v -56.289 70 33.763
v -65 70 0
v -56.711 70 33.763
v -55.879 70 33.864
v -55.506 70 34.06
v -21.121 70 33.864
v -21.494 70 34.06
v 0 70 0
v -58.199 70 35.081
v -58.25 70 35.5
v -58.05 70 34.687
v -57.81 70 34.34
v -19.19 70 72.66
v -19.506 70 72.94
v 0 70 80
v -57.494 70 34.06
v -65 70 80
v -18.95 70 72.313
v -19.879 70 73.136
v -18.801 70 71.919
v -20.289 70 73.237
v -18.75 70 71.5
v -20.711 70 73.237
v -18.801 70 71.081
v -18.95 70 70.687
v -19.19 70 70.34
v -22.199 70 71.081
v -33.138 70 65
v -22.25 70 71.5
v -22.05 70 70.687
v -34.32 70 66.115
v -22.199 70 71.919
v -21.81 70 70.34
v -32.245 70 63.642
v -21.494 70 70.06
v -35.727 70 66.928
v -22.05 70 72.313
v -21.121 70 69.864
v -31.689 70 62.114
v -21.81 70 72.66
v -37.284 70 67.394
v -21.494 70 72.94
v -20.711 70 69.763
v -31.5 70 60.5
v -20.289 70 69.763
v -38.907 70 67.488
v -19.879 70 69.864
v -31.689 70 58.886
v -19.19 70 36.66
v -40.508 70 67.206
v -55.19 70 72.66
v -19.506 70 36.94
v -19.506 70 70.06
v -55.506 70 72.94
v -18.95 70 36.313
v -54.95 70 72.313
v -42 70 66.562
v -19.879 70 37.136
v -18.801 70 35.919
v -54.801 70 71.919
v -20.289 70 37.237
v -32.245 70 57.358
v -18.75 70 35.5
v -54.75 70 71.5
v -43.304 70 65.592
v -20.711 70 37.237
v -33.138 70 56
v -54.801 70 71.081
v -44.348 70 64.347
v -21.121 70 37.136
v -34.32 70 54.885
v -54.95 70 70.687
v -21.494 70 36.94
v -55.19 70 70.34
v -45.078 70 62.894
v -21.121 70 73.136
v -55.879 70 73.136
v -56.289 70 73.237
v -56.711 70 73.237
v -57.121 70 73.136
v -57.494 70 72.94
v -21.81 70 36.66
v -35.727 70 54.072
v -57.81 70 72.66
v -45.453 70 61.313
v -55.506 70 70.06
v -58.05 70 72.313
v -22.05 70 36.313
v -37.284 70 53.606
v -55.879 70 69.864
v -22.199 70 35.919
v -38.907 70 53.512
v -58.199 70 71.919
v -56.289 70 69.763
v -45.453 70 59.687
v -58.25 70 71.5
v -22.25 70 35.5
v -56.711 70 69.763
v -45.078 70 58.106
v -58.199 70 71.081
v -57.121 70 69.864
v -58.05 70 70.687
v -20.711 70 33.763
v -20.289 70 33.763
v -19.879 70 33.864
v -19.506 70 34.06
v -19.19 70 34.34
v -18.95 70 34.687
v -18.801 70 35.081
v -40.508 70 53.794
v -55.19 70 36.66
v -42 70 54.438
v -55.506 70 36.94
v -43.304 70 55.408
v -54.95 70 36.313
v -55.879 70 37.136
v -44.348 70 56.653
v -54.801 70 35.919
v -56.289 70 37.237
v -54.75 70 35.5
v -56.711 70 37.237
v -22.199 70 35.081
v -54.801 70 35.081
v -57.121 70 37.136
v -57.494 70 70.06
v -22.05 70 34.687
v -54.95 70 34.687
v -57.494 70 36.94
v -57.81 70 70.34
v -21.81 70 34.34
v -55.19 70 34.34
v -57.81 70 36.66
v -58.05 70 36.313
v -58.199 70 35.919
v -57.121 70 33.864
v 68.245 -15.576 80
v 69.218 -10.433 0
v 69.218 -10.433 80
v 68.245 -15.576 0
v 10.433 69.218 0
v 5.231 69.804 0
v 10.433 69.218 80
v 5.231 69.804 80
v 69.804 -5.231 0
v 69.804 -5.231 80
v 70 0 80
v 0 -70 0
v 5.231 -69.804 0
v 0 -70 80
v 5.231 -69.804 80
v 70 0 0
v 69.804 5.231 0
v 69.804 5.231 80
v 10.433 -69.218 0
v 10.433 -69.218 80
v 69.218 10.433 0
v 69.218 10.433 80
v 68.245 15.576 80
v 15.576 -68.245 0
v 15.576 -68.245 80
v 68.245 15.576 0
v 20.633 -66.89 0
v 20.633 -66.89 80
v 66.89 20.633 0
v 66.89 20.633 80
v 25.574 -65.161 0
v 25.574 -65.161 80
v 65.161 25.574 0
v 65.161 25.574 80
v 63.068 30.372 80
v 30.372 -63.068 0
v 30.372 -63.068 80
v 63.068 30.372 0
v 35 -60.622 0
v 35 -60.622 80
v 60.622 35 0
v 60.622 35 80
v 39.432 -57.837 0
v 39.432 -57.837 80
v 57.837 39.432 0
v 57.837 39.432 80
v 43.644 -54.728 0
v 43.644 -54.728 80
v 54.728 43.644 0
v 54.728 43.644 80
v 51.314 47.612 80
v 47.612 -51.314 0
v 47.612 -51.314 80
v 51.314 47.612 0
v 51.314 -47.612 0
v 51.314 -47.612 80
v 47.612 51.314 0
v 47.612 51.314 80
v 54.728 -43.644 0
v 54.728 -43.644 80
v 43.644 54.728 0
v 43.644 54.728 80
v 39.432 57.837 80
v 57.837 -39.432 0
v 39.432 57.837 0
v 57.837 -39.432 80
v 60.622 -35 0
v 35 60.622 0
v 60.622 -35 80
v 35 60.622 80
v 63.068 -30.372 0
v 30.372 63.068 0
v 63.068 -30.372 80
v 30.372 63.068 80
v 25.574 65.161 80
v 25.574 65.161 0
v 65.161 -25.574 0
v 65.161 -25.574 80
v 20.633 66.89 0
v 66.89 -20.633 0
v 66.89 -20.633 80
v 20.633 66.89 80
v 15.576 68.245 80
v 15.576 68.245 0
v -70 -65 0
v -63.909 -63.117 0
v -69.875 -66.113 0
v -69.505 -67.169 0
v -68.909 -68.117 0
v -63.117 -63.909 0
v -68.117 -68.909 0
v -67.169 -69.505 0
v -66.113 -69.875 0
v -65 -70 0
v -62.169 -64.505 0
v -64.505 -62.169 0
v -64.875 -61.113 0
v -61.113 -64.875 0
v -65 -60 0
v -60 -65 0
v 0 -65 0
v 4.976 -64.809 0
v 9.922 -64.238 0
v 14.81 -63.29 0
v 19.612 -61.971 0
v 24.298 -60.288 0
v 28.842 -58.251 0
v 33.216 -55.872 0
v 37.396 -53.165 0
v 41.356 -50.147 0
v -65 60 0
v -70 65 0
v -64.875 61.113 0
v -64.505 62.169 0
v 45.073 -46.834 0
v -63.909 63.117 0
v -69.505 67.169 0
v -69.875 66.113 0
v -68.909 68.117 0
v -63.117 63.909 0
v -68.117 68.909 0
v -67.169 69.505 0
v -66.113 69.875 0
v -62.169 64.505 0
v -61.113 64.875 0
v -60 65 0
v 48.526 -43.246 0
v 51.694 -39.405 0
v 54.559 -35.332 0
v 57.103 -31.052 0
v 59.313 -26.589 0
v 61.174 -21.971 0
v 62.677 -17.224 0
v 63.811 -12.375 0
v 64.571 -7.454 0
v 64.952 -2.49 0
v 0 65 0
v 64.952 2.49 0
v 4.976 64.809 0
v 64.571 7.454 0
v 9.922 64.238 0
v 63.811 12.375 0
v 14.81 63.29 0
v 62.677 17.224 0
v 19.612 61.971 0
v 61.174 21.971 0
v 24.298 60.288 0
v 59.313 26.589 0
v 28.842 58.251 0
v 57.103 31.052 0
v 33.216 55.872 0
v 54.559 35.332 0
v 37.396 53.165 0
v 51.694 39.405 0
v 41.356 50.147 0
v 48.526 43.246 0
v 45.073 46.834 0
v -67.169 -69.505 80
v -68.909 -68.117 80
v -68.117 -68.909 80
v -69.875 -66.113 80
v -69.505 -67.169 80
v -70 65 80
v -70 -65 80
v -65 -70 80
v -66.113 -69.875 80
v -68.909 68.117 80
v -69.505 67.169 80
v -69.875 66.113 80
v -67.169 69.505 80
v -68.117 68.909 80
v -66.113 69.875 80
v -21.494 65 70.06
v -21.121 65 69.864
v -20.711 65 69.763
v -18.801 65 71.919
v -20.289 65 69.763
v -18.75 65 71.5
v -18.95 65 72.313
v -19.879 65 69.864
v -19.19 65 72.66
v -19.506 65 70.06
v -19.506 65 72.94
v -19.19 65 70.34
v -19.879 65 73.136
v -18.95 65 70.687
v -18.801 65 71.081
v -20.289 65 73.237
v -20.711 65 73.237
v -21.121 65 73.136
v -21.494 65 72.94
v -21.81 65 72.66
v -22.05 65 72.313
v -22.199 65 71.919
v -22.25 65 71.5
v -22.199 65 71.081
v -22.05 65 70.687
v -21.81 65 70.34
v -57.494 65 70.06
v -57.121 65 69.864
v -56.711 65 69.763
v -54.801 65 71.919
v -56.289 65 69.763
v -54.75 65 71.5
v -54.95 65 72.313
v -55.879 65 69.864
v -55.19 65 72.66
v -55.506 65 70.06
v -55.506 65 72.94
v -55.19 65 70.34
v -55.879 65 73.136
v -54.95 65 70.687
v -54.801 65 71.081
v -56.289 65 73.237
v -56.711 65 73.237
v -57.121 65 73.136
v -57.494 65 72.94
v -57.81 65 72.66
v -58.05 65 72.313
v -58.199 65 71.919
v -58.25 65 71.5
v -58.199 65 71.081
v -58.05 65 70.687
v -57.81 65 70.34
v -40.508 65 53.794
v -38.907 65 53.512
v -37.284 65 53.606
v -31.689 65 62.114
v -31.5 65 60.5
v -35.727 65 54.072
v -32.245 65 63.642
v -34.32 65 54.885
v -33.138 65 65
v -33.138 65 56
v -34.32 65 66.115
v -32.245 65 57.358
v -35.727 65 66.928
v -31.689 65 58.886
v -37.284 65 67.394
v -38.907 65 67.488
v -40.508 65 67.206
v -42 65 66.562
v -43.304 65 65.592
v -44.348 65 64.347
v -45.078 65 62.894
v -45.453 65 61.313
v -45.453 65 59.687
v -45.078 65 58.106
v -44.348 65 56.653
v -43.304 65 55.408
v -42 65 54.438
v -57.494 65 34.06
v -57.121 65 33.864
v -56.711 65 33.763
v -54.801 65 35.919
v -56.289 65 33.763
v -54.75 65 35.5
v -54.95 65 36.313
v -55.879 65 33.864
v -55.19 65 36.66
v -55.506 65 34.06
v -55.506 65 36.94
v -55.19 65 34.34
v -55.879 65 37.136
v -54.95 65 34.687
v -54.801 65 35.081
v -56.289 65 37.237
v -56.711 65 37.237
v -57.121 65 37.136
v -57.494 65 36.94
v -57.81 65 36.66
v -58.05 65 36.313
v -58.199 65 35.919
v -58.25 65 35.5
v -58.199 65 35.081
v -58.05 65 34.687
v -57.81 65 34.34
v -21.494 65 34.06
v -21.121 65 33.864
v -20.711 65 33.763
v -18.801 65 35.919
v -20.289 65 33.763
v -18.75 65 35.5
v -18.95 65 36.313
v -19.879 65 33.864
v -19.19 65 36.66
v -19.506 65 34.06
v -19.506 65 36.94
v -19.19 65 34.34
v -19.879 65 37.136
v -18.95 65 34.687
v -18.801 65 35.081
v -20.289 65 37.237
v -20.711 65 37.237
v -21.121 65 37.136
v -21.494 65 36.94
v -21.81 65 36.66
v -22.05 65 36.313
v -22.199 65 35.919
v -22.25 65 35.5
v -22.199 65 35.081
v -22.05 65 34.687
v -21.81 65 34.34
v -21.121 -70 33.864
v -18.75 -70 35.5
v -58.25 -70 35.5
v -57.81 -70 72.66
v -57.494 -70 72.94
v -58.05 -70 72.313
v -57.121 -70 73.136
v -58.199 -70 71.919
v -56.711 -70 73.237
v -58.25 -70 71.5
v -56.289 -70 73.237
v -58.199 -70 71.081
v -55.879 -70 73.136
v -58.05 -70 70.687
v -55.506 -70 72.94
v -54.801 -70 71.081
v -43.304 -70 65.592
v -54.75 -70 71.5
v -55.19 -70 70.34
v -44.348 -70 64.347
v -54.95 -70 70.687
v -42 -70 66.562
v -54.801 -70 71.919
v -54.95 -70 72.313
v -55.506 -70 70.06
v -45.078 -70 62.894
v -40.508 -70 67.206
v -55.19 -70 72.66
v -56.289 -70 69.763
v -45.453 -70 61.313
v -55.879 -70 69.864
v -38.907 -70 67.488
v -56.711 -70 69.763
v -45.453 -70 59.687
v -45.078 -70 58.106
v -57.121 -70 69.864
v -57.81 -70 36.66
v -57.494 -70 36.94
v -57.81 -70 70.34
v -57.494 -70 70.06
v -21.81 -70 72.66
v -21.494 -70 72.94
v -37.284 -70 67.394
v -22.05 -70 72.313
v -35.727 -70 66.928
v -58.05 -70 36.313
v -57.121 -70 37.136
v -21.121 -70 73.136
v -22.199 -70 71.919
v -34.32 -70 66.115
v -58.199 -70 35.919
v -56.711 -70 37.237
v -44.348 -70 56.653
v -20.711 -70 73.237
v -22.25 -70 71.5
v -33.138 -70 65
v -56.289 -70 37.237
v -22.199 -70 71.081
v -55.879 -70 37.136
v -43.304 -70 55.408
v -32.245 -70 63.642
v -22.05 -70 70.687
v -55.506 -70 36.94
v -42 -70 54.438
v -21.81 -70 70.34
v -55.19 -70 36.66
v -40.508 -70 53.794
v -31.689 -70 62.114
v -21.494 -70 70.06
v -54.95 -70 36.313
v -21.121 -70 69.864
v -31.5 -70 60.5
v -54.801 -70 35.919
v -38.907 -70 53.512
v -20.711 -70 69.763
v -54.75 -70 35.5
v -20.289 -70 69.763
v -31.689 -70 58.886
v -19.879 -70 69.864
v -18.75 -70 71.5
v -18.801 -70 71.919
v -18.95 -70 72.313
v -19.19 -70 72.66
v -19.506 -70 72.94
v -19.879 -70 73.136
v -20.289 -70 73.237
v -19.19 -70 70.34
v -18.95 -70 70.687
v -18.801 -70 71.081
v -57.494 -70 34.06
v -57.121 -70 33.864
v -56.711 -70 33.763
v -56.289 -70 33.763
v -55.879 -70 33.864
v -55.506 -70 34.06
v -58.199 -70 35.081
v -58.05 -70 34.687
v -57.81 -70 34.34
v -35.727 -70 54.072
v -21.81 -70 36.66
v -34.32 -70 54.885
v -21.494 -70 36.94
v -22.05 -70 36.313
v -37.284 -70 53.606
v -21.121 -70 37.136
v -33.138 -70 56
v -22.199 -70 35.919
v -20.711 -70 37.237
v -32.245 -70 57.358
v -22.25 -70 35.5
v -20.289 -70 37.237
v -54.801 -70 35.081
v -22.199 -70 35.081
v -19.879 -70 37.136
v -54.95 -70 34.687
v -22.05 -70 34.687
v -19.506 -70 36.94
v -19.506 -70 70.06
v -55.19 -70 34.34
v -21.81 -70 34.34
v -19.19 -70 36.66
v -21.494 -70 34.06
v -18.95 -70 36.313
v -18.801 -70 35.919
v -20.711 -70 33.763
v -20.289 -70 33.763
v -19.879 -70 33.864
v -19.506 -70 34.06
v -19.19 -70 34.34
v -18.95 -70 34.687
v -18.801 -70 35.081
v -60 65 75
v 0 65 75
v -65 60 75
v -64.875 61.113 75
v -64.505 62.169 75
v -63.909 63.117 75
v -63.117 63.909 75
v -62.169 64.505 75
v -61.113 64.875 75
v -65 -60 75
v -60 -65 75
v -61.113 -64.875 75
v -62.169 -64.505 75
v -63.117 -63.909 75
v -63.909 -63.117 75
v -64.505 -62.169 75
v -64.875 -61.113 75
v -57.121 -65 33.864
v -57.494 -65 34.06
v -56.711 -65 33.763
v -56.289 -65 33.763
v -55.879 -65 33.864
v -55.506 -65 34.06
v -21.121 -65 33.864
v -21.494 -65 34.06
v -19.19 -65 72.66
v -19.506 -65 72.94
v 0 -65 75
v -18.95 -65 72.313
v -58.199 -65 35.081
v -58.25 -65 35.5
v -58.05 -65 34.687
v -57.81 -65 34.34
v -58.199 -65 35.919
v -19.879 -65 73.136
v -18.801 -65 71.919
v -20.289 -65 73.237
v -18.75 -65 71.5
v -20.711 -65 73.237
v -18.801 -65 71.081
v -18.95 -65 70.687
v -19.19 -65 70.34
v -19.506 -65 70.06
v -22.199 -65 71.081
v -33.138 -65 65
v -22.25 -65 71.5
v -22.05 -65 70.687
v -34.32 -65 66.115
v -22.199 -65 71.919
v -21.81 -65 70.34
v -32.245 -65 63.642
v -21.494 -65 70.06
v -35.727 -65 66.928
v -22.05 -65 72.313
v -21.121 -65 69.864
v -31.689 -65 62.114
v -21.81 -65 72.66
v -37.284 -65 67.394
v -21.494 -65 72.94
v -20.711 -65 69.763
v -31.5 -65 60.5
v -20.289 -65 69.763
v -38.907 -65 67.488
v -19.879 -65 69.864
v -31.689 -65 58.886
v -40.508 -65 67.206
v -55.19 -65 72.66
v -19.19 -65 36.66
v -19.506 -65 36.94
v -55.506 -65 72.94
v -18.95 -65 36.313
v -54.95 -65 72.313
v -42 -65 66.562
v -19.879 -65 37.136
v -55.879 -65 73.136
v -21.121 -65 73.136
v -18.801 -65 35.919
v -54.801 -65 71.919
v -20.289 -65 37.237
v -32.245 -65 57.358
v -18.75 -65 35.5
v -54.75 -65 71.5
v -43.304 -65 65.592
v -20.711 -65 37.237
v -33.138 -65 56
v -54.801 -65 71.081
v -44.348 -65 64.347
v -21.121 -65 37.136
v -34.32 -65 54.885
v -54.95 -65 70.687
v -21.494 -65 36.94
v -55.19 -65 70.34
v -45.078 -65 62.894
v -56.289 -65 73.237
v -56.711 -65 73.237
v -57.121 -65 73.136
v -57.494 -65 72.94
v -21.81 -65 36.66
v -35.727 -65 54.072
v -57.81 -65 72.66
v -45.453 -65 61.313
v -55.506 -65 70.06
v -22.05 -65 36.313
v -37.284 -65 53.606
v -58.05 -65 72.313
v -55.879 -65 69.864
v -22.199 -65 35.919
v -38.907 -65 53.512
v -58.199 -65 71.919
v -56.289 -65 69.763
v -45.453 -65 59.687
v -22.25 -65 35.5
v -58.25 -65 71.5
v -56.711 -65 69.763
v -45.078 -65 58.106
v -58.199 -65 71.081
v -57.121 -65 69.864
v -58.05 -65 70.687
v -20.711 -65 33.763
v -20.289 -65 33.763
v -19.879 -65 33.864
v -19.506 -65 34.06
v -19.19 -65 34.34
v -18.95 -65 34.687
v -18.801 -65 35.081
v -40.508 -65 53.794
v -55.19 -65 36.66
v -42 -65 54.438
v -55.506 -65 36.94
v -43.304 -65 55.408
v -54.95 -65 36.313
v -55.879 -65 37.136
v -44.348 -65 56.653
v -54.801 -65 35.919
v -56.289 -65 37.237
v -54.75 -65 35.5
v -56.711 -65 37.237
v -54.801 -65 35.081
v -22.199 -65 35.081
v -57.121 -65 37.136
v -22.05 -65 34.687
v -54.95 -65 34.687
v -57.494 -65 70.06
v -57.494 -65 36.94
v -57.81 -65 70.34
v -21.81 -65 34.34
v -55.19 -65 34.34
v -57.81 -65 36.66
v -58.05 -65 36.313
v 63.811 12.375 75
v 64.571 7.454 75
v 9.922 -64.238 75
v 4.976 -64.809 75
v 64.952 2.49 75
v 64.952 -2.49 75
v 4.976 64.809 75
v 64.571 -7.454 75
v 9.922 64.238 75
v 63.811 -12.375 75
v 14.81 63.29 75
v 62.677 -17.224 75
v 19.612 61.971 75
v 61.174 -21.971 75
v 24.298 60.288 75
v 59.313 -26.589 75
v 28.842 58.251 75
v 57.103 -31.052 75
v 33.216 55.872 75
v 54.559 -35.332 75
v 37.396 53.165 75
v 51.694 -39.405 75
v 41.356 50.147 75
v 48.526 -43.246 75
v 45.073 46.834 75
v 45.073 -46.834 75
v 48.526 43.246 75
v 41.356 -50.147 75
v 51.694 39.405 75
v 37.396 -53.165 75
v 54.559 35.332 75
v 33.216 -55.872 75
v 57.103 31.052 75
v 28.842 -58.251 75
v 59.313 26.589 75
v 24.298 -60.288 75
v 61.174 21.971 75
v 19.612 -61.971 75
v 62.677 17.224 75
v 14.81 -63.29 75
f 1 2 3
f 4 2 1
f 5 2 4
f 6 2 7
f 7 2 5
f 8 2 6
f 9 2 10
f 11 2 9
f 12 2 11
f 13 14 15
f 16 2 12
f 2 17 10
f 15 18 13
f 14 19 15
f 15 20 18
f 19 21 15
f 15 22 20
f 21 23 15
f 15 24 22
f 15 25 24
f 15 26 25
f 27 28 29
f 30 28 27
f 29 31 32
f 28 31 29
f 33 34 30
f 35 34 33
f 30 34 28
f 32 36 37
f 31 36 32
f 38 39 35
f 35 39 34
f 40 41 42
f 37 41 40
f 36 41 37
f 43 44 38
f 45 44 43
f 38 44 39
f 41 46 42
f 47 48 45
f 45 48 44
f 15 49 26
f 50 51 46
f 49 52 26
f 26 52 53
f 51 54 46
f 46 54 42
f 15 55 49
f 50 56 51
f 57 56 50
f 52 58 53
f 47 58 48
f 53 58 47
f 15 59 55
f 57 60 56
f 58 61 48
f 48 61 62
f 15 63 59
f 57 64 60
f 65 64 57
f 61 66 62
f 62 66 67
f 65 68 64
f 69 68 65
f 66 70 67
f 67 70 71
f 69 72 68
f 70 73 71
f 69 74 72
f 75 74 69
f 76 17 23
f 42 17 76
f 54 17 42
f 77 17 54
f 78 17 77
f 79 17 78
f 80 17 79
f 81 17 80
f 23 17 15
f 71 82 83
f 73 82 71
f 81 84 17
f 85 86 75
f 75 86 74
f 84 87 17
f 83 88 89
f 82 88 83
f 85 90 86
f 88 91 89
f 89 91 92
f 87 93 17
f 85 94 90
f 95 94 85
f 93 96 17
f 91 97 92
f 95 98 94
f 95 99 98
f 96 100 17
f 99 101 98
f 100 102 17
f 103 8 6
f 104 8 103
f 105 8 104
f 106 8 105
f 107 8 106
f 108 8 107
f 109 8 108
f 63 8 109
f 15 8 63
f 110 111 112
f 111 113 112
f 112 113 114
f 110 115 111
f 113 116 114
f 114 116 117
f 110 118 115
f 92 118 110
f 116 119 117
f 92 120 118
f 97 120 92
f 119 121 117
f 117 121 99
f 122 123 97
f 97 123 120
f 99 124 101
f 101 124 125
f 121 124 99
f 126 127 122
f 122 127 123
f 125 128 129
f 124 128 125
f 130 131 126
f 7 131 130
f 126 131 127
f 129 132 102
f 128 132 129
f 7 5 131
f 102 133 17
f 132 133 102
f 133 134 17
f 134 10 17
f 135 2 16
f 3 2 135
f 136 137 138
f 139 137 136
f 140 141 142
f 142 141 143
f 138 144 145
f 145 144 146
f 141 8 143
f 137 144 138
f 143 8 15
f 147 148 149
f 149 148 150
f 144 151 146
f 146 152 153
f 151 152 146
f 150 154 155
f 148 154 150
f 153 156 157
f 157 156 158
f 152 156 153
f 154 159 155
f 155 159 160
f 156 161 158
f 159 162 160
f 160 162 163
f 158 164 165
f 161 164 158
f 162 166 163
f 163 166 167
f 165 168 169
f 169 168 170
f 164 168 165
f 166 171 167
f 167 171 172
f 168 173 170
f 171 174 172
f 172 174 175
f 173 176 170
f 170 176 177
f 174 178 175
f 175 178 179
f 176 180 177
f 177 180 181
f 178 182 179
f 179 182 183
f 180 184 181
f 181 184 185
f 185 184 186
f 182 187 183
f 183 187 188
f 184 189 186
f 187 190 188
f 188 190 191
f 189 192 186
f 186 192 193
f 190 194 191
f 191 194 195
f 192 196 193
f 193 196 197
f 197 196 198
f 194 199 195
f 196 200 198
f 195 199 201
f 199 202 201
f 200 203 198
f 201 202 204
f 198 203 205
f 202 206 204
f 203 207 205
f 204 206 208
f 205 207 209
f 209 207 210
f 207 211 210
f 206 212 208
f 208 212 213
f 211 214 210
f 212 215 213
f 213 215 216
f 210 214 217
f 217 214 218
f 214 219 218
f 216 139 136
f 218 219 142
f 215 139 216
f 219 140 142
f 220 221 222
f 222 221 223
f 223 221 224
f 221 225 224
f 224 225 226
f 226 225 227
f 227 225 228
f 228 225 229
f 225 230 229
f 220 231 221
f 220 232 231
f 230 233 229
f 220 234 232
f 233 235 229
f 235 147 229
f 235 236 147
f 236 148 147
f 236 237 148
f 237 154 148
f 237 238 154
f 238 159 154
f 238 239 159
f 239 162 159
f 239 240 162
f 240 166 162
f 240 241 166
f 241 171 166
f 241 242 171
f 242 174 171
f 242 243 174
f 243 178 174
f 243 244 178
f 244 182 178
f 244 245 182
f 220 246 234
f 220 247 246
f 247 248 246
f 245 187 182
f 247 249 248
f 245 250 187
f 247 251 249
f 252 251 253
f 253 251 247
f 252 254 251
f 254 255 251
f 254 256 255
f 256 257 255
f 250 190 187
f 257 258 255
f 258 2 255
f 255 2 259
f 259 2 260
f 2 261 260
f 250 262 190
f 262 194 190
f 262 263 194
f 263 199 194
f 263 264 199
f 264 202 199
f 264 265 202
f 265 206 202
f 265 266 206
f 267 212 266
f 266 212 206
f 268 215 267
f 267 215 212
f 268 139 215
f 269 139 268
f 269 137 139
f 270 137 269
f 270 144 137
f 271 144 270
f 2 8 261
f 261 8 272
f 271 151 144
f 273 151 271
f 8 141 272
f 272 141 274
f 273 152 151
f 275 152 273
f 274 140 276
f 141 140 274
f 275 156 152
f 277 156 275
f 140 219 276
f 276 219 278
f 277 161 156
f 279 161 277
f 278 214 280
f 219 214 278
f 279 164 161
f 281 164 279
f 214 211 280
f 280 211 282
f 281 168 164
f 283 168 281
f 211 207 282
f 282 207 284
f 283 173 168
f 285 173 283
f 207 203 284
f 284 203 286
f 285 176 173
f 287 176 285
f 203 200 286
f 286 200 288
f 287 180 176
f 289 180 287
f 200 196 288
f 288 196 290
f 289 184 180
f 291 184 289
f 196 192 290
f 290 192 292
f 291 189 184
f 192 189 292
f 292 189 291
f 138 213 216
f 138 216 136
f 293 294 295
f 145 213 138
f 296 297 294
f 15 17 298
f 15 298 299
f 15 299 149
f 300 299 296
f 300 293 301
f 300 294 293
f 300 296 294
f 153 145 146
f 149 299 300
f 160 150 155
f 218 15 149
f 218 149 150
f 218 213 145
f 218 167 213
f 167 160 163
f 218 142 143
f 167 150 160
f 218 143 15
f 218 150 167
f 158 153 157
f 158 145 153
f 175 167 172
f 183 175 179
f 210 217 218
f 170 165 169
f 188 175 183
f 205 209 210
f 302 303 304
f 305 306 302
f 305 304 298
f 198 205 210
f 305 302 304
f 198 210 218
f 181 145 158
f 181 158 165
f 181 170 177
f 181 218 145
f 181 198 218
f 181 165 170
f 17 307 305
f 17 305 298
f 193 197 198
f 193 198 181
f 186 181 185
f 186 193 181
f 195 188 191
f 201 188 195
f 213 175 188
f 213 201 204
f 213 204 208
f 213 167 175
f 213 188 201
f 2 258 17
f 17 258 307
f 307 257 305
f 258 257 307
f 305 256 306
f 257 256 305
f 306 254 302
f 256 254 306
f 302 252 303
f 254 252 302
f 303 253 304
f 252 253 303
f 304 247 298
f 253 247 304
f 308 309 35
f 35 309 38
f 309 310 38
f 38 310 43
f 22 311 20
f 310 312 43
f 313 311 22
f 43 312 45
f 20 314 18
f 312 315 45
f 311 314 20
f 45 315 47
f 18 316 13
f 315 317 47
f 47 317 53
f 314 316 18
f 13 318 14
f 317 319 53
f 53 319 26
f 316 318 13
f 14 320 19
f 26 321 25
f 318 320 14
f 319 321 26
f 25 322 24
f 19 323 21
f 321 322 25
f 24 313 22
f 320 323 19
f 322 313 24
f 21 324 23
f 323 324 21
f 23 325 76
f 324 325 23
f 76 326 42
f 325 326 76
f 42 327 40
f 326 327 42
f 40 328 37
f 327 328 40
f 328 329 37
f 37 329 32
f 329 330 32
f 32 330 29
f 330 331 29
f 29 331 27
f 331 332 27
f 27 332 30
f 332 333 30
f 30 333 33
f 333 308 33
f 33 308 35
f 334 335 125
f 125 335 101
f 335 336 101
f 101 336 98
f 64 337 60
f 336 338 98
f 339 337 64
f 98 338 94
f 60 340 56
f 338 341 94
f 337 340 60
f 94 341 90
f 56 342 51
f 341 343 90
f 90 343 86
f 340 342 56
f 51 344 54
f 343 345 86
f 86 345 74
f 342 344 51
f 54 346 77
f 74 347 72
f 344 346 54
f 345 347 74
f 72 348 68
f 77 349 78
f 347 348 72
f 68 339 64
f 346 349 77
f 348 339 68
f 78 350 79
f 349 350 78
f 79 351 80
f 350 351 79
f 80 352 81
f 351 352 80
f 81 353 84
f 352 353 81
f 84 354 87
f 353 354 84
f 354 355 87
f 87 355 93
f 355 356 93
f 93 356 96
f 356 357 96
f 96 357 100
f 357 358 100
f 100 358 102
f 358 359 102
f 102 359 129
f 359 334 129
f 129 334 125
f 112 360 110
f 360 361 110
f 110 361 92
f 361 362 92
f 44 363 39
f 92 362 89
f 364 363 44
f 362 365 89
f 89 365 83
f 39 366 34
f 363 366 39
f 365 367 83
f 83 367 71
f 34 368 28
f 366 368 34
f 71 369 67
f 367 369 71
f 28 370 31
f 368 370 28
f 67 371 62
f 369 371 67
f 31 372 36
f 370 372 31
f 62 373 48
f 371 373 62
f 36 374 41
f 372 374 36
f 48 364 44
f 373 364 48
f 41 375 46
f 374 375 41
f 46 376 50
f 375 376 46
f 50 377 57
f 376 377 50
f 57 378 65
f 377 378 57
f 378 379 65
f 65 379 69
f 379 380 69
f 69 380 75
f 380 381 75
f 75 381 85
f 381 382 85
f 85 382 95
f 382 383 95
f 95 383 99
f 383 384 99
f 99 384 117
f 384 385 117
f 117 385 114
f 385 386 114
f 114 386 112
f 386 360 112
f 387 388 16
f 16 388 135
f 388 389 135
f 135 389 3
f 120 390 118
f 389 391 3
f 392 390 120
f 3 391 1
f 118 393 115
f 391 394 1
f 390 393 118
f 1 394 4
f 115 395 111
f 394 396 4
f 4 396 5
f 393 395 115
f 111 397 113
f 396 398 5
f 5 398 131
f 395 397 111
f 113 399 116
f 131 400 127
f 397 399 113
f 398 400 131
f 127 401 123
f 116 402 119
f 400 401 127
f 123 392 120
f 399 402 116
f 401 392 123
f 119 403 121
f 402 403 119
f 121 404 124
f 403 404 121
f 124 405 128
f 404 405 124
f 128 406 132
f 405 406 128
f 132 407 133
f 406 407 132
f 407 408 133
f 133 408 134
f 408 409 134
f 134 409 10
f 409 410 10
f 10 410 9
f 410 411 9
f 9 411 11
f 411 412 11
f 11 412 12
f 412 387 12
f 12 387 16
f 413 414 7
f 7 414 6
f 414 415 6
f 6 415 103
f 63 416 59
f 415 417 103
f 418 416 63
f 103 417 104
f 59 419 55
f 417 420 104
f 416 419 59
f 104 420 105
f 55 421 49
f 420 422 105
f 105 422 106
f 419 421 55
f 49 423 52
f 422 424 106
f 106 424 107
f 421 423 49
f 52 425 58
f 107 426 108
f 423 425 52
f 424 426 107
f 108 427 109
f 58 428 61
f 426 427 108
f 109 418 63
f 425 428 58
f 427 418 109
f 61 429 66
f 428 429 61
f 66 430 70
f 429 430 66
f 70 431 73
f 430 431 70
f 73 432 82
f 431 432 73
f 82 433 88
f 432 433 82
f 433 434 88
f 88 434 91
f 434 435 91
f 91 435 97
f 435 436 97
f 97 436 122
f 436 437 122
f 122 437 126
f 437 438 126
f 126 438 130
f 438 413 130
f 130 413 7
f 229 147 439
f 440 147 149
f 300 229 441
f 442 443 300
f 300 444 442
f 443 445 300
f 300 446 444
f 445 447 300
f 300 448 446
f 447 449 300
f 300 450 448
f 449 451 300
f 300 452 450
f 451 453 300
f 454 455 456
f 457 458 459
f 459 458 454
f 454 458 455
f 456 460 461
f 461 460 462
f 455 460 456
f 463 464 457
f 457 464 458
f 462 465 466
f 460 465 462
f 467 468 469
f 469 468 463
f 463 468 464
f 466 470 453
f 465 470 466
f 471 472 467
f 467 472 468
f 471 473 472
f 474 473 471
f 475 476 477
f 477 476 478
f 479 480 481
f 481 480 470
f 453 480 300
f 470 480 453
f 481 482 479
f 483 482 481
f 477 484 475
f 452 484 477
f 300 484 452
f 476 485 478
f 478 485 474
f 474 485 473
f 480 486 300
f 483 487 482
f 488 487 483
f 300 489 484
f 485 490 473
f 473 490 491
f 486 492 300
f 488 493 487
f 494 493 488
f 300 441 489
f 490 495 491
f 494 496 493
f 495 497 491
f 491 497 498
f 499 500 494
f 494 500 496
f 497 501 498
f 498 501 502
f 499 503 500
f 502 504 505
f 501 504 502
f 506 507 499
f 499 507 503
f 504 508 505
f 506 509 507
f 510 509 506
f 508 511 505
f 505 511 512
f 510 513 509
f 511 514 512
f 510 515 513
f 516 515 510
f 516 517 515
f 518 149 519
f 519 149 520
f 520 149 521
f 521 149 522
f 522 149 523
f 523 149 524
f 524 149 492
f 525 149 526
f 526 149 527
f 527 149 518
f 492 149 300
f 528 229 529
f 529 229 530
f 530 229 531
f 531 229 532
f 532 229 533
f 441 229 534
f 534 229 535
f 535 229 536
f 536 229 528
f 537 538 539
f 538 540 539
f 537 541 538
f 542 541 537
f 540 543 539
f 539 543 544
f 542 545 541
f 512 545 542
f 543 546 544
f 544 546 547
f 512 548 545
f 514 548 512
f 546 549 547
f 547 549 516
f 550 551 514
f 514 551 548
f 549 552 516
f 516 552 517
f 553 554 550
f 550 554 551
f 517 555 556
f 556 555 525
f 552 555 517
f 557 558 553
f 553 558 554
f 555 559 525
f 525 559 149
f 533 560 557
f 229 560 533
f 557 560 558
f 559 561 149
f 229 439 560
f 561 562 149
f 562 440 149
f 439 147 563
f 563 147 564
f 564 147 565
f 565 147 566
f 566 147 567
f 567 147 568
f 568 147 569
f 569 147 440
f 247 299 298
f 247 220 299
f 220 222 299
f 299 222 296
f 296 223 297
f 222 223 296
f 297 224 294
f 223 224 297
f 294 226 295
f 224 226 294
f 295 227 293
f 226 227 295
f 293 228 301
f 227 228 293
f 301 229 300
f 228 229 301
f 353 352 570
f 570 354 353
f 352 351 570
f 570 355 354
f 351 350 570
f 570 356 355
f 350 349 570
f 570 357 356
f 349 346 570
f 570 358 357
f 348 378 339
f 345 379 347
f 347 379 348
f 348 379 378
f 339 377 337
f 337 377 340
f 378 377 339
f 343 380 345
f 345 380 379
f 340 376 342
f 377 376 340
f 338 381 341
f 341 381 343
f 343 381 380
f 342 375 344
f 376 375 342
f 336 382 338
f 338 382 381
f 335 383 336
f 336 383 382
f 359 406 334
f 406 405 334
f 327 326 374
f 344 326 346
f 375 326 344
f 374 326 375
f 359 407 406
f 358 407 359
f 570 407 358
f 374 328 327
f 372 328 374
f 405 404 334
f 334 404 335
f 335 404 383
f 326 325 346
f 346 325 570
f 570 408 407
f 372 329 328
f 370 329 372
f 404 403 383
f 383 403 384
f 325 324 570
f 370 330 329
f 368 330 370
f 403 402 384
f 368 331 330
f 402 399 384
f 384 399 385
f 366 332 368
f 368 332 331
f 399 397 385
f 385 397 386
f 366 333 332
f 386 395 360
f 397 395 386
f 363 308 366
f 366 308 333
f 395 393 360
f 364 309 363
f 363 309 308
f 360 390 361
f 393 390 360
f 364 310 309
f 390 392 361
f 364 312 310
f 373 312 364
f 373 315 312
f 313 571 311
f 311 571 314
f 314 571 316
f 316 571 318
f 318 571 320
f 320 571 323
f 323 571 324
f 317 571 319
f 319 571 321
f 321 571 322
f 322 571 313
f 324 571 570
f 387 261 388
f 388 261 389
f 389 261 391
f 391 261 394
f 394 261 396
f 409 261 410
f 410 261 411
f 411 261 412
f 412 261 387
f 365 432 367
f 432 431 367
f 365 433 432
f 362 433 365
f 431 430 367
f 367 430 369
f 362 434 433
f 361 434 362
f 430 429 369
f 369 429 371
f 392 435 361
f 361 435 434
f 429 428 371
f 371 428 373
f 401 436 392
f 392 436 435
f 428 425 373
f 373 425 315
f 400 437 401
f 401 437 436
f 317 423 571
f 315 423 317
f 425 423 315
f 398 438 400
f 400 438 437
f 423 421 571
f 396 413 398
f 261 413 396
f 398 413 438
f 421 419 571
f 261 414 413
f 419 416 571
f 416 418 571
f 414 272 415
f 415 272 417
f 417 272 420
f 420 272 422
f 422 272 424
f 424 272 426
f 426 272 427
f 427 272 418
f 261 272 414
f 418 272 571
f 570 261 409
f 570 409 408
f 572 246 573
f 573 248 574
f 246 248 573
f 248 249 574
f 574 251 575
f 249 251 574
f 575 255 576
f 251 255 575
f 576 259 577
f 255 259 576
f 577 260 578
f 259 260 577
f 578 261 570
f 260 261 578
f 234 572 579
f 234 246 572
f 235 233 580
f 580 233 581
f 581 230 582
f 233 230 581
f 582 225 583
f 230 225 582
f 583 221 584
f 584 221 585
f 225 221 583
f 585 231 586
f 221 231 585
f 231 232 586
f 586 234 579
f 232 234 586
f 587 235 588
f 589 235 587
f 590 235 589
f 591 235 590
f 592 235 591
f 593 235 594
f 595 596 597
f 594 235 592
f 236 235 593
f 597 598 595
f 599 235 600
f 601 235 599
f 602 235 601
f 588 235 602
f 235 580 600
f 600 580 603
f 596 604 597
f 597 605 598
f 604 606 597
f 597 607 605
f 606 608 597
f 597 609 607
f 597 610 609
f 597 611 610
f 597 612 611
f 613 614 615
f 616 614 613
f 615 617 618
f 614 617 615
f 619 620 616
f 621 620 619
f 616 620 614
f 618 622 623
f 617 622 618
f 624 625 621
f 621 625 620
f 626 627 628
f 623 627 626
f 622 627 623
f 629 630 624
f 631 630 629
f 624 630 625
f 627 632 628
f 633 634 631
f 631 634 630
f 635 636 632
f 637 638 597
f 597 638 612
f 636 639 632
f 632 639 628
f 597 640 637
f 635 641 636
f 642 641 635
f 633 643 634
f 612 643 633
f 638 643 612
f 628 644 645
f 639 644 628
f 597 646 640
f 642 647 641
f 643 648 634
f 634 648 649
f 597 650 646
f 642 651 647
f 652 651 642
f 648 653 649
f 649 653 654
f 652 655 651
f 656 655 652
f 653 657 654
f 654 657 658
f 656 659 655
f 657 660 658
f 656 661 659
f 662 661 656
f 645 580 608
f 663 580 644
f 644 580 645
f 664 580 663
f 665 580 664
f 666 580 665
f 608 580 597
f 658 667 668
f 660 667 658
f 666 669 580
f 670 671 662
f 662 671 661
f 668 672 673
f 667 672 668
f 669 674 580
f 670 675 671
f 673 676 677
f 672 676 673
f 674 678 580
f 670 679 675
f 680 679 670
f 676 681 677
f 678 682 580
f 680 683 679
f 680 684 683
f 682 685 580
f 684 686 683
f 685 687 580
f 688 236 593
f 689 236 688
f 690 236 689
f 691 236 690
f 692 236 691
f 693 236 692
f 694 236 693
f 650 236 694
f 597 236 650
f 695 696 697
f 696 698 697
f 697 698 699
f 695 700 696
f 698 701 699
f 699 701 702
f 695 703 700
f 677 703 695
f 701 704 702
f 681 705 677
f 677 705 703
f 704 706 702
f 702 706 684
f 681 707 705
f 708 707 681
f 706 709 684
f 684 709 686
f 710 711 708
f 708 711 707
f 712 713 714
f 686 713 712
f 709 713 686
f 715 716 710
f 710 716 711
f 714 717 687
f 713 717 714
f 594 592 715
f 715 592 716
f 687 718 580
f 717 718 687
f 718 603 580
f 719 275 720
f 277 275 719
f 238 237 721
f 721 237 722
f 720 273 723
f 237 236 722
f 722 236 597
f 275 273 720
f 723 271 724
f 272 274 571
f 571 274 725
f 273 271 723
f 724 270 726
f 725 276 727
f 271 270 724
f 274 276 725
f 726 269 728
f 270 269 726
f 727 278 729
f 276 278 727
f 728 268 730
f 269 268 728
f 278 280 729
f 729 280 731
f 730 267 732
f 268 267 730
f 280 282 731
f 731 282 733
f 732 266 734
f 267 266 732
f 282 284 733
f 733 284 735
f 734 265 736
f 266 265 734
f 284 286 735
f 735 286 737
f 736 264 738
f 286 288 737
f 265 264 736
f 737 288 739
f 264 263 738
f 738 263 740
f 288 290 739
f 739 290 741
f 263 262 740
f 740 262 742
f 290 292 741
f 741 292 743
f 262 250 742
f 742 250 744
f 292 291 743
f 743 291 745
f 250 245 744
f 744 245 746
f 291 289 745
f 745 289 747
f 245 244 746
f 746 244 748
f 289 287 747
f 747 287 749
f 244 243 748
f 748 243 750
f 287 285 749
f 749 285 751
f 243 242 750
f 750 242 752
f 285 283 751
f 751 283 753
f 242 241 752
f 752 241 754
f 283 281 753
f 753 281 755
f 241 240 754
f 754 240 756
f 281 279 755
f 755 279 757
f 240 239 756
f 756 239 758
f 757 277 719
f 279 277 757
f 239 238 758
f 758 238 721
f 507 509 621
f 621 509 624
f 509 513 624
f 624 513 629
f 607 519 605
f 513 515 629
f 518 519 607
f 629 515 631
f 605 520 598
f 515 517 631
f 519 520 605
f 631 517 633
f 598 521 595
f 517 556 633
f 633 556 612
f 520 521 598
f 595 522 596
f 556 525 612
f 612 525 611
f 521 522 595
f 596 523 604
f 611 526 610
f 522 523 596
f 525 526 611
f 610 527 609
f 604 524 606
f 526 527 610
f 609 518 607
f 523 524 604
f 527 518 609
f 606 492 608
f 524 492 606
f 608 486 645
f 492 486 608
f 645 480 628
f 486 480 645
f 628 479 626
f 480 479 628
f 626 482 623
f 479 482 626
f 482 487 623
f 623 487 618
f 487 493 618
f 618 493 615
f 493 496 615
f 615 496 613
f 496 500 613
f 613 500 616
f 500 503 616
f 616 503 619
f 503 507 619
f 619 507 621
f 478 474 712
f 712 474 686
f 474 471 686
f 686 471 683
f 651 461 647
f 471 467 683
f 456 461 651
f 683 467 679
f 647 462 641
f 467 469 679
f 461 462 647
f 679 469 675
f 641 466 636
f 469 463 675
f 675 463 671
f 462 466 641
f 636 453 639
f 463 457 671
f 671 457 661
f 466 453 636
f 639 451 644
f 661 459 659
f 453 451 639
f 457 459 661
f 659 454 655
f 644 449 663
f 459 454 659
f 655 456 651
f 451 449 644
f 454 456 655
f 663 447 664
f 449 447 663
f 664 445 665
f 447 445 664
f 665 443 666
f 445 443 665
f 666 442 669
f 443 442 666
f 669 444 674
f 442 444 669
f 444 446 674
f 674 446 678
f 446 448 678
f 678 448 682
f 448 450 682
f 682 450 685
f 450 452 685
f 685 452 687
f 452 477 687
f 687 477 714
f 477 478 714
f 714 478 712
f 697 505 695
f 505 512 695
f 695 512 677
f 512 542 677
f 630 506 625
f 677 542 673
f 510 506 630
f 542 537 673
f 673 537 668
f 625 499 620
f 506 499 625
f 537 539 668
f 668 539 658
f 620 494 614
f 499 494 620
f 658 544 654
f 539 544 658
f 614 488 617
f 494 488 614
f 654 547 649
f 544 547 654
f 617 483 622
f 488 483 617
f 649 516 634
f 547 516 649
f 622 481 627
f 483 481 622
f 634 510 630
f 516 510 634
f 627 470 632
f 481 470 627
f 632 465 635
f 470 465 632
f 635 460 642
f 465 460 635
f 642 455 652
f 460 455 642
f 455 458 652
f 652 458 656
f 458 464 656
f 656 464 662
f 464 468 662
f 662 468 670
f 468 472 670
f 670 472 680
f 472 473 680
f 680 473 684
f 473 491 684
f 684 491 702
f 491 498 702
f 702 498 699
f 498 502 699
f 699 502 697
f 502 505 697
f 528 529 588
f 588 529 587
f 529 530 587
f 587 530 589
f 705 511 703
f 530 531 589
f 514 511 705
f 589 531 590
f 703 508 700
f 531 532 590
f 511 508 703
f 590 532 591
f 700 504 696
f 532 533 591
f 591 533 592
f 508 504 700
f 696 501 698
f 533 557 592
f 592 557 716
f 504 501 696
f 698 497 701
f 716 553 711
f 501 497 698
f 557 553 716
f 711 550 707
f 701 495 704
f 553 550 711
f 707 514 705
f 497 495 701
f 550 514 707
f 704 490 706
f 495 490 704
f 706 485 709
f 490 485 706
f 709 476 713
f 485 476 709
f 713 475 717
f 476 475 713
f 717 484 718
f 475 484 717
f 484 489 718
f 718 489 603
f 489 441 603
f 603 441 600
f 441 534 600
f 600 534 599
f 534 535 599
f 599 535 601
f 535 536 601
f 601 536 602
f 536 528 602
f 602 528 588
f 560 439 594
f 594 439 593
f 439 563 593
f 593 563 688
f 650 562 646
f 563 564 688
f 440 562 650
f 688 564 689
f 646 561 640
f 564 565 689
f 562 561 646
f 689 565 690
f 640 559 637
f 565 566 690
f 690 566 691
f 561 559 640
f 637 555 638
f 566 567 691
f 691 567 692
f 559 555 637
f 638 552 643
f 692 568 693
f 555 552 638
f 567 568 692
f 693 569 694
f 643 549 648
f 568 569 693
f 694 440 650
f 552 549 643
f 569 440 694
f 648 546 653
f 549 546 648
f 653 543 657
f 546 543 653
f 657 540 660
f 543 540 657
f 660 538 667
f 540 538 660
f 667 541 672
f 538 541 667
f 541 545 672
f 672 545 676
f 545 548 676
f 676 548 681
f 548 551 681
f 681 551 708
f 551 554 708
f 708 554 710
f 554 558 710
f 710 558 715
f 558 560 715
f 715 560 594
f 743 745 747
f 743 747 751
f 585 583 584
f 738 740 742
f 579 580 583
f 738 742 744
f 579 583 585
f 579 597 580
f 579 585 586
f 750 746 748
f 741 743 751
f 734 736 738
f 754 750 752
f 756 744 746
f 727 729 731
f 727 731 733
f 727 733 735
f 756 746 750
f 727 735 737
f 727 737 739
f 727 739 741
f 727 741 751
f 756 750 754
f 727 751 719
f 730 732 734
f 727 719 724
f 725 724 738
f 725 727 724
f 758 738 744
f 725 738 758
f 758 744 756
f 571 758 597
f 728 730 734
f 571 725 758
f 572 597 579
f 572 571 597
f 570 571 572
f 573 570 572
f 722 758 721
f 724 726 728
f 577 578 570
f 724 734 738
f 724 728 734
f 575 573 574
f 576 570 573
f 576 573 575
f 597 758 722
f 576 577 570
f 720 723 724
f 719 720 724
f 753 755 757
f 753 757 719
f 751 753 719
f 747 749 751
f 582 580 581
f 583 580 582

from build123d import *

# Parameters (mm, degrees)
PAD_DEPTH       = 80
POCKET_DEPTH    = 75
SKETCH002_R     = 7
SKETCH002_R_2   = 1.75
POCKET001_DEPTH = 140


with BuildPart() as part:
    # Sketch → Pad (new body)
    with BuildSketch(Plane.XY):
        with BuildLine():
            Line((0, 70), (-65, 70))
            ThreePointArc((-65, 70), (-68.535534, 68.535534), (-70, 65))
            Line((-70, 65), (-70, -65))
            ThreePointArc((-70, -65), (-68.535534, -68.535534), (-65, -70))
            Line((-65, -70), (0, -70))
            ThreePointArc((0, -70), (70, 0), (0, 70))
        make_face()
    extrude(amount=PAD_DEPTH)

    # Sketch001 (on Face7 of Pad) → Pocket (cut)
    with BuildSketch(Plane(origin=(0, 0, 0), x_dir=(1, 0, 0), z_dir=(0, 0, -1))):
        with BuildLine():
            ThreePointArc((0, -65), (65.000059, 0), (0, 65))
            Line((0, 65), (-60, 65))
            ThreePointArc((-60, 65), (-63.535534, 63.535534), (-65, 60))
            Line((-65, 60), (-65, -60))
            ThreePointArc((-65, -60), (-63.535534, -63.535534), (-60, -65))
            Line((-60, -65), (0, -65))
        make_face()
    extrude(amount=-POCKET_DEPTH, mode=Mode.SUBTRACT)

    # Sketch002 (on Face6 of Pocket) → Pocket001 (cut)
    with BuildSketch(Plane.XZ.offset(70)):
        with Locations((-38.5, 60.5)):
            Circle(SKETCH002_R)
        with Locations((-56.5, 71.5)):
            Circle(SKETCH002_R_2)
        with Locations((-56.5, 35.5)):
            Circle(SKETCH002_R_2)
        with Locations((-20.5, 71.5)):
            Circle(SKETCH002_R_2)
        with Locations((-20.5, 35.5)):
            Circle(SKETCH002_R_2)
    extrude(amount=-POCKET001_DEPTH, mode=Mode.SUBTRACT)


solid = part.part
